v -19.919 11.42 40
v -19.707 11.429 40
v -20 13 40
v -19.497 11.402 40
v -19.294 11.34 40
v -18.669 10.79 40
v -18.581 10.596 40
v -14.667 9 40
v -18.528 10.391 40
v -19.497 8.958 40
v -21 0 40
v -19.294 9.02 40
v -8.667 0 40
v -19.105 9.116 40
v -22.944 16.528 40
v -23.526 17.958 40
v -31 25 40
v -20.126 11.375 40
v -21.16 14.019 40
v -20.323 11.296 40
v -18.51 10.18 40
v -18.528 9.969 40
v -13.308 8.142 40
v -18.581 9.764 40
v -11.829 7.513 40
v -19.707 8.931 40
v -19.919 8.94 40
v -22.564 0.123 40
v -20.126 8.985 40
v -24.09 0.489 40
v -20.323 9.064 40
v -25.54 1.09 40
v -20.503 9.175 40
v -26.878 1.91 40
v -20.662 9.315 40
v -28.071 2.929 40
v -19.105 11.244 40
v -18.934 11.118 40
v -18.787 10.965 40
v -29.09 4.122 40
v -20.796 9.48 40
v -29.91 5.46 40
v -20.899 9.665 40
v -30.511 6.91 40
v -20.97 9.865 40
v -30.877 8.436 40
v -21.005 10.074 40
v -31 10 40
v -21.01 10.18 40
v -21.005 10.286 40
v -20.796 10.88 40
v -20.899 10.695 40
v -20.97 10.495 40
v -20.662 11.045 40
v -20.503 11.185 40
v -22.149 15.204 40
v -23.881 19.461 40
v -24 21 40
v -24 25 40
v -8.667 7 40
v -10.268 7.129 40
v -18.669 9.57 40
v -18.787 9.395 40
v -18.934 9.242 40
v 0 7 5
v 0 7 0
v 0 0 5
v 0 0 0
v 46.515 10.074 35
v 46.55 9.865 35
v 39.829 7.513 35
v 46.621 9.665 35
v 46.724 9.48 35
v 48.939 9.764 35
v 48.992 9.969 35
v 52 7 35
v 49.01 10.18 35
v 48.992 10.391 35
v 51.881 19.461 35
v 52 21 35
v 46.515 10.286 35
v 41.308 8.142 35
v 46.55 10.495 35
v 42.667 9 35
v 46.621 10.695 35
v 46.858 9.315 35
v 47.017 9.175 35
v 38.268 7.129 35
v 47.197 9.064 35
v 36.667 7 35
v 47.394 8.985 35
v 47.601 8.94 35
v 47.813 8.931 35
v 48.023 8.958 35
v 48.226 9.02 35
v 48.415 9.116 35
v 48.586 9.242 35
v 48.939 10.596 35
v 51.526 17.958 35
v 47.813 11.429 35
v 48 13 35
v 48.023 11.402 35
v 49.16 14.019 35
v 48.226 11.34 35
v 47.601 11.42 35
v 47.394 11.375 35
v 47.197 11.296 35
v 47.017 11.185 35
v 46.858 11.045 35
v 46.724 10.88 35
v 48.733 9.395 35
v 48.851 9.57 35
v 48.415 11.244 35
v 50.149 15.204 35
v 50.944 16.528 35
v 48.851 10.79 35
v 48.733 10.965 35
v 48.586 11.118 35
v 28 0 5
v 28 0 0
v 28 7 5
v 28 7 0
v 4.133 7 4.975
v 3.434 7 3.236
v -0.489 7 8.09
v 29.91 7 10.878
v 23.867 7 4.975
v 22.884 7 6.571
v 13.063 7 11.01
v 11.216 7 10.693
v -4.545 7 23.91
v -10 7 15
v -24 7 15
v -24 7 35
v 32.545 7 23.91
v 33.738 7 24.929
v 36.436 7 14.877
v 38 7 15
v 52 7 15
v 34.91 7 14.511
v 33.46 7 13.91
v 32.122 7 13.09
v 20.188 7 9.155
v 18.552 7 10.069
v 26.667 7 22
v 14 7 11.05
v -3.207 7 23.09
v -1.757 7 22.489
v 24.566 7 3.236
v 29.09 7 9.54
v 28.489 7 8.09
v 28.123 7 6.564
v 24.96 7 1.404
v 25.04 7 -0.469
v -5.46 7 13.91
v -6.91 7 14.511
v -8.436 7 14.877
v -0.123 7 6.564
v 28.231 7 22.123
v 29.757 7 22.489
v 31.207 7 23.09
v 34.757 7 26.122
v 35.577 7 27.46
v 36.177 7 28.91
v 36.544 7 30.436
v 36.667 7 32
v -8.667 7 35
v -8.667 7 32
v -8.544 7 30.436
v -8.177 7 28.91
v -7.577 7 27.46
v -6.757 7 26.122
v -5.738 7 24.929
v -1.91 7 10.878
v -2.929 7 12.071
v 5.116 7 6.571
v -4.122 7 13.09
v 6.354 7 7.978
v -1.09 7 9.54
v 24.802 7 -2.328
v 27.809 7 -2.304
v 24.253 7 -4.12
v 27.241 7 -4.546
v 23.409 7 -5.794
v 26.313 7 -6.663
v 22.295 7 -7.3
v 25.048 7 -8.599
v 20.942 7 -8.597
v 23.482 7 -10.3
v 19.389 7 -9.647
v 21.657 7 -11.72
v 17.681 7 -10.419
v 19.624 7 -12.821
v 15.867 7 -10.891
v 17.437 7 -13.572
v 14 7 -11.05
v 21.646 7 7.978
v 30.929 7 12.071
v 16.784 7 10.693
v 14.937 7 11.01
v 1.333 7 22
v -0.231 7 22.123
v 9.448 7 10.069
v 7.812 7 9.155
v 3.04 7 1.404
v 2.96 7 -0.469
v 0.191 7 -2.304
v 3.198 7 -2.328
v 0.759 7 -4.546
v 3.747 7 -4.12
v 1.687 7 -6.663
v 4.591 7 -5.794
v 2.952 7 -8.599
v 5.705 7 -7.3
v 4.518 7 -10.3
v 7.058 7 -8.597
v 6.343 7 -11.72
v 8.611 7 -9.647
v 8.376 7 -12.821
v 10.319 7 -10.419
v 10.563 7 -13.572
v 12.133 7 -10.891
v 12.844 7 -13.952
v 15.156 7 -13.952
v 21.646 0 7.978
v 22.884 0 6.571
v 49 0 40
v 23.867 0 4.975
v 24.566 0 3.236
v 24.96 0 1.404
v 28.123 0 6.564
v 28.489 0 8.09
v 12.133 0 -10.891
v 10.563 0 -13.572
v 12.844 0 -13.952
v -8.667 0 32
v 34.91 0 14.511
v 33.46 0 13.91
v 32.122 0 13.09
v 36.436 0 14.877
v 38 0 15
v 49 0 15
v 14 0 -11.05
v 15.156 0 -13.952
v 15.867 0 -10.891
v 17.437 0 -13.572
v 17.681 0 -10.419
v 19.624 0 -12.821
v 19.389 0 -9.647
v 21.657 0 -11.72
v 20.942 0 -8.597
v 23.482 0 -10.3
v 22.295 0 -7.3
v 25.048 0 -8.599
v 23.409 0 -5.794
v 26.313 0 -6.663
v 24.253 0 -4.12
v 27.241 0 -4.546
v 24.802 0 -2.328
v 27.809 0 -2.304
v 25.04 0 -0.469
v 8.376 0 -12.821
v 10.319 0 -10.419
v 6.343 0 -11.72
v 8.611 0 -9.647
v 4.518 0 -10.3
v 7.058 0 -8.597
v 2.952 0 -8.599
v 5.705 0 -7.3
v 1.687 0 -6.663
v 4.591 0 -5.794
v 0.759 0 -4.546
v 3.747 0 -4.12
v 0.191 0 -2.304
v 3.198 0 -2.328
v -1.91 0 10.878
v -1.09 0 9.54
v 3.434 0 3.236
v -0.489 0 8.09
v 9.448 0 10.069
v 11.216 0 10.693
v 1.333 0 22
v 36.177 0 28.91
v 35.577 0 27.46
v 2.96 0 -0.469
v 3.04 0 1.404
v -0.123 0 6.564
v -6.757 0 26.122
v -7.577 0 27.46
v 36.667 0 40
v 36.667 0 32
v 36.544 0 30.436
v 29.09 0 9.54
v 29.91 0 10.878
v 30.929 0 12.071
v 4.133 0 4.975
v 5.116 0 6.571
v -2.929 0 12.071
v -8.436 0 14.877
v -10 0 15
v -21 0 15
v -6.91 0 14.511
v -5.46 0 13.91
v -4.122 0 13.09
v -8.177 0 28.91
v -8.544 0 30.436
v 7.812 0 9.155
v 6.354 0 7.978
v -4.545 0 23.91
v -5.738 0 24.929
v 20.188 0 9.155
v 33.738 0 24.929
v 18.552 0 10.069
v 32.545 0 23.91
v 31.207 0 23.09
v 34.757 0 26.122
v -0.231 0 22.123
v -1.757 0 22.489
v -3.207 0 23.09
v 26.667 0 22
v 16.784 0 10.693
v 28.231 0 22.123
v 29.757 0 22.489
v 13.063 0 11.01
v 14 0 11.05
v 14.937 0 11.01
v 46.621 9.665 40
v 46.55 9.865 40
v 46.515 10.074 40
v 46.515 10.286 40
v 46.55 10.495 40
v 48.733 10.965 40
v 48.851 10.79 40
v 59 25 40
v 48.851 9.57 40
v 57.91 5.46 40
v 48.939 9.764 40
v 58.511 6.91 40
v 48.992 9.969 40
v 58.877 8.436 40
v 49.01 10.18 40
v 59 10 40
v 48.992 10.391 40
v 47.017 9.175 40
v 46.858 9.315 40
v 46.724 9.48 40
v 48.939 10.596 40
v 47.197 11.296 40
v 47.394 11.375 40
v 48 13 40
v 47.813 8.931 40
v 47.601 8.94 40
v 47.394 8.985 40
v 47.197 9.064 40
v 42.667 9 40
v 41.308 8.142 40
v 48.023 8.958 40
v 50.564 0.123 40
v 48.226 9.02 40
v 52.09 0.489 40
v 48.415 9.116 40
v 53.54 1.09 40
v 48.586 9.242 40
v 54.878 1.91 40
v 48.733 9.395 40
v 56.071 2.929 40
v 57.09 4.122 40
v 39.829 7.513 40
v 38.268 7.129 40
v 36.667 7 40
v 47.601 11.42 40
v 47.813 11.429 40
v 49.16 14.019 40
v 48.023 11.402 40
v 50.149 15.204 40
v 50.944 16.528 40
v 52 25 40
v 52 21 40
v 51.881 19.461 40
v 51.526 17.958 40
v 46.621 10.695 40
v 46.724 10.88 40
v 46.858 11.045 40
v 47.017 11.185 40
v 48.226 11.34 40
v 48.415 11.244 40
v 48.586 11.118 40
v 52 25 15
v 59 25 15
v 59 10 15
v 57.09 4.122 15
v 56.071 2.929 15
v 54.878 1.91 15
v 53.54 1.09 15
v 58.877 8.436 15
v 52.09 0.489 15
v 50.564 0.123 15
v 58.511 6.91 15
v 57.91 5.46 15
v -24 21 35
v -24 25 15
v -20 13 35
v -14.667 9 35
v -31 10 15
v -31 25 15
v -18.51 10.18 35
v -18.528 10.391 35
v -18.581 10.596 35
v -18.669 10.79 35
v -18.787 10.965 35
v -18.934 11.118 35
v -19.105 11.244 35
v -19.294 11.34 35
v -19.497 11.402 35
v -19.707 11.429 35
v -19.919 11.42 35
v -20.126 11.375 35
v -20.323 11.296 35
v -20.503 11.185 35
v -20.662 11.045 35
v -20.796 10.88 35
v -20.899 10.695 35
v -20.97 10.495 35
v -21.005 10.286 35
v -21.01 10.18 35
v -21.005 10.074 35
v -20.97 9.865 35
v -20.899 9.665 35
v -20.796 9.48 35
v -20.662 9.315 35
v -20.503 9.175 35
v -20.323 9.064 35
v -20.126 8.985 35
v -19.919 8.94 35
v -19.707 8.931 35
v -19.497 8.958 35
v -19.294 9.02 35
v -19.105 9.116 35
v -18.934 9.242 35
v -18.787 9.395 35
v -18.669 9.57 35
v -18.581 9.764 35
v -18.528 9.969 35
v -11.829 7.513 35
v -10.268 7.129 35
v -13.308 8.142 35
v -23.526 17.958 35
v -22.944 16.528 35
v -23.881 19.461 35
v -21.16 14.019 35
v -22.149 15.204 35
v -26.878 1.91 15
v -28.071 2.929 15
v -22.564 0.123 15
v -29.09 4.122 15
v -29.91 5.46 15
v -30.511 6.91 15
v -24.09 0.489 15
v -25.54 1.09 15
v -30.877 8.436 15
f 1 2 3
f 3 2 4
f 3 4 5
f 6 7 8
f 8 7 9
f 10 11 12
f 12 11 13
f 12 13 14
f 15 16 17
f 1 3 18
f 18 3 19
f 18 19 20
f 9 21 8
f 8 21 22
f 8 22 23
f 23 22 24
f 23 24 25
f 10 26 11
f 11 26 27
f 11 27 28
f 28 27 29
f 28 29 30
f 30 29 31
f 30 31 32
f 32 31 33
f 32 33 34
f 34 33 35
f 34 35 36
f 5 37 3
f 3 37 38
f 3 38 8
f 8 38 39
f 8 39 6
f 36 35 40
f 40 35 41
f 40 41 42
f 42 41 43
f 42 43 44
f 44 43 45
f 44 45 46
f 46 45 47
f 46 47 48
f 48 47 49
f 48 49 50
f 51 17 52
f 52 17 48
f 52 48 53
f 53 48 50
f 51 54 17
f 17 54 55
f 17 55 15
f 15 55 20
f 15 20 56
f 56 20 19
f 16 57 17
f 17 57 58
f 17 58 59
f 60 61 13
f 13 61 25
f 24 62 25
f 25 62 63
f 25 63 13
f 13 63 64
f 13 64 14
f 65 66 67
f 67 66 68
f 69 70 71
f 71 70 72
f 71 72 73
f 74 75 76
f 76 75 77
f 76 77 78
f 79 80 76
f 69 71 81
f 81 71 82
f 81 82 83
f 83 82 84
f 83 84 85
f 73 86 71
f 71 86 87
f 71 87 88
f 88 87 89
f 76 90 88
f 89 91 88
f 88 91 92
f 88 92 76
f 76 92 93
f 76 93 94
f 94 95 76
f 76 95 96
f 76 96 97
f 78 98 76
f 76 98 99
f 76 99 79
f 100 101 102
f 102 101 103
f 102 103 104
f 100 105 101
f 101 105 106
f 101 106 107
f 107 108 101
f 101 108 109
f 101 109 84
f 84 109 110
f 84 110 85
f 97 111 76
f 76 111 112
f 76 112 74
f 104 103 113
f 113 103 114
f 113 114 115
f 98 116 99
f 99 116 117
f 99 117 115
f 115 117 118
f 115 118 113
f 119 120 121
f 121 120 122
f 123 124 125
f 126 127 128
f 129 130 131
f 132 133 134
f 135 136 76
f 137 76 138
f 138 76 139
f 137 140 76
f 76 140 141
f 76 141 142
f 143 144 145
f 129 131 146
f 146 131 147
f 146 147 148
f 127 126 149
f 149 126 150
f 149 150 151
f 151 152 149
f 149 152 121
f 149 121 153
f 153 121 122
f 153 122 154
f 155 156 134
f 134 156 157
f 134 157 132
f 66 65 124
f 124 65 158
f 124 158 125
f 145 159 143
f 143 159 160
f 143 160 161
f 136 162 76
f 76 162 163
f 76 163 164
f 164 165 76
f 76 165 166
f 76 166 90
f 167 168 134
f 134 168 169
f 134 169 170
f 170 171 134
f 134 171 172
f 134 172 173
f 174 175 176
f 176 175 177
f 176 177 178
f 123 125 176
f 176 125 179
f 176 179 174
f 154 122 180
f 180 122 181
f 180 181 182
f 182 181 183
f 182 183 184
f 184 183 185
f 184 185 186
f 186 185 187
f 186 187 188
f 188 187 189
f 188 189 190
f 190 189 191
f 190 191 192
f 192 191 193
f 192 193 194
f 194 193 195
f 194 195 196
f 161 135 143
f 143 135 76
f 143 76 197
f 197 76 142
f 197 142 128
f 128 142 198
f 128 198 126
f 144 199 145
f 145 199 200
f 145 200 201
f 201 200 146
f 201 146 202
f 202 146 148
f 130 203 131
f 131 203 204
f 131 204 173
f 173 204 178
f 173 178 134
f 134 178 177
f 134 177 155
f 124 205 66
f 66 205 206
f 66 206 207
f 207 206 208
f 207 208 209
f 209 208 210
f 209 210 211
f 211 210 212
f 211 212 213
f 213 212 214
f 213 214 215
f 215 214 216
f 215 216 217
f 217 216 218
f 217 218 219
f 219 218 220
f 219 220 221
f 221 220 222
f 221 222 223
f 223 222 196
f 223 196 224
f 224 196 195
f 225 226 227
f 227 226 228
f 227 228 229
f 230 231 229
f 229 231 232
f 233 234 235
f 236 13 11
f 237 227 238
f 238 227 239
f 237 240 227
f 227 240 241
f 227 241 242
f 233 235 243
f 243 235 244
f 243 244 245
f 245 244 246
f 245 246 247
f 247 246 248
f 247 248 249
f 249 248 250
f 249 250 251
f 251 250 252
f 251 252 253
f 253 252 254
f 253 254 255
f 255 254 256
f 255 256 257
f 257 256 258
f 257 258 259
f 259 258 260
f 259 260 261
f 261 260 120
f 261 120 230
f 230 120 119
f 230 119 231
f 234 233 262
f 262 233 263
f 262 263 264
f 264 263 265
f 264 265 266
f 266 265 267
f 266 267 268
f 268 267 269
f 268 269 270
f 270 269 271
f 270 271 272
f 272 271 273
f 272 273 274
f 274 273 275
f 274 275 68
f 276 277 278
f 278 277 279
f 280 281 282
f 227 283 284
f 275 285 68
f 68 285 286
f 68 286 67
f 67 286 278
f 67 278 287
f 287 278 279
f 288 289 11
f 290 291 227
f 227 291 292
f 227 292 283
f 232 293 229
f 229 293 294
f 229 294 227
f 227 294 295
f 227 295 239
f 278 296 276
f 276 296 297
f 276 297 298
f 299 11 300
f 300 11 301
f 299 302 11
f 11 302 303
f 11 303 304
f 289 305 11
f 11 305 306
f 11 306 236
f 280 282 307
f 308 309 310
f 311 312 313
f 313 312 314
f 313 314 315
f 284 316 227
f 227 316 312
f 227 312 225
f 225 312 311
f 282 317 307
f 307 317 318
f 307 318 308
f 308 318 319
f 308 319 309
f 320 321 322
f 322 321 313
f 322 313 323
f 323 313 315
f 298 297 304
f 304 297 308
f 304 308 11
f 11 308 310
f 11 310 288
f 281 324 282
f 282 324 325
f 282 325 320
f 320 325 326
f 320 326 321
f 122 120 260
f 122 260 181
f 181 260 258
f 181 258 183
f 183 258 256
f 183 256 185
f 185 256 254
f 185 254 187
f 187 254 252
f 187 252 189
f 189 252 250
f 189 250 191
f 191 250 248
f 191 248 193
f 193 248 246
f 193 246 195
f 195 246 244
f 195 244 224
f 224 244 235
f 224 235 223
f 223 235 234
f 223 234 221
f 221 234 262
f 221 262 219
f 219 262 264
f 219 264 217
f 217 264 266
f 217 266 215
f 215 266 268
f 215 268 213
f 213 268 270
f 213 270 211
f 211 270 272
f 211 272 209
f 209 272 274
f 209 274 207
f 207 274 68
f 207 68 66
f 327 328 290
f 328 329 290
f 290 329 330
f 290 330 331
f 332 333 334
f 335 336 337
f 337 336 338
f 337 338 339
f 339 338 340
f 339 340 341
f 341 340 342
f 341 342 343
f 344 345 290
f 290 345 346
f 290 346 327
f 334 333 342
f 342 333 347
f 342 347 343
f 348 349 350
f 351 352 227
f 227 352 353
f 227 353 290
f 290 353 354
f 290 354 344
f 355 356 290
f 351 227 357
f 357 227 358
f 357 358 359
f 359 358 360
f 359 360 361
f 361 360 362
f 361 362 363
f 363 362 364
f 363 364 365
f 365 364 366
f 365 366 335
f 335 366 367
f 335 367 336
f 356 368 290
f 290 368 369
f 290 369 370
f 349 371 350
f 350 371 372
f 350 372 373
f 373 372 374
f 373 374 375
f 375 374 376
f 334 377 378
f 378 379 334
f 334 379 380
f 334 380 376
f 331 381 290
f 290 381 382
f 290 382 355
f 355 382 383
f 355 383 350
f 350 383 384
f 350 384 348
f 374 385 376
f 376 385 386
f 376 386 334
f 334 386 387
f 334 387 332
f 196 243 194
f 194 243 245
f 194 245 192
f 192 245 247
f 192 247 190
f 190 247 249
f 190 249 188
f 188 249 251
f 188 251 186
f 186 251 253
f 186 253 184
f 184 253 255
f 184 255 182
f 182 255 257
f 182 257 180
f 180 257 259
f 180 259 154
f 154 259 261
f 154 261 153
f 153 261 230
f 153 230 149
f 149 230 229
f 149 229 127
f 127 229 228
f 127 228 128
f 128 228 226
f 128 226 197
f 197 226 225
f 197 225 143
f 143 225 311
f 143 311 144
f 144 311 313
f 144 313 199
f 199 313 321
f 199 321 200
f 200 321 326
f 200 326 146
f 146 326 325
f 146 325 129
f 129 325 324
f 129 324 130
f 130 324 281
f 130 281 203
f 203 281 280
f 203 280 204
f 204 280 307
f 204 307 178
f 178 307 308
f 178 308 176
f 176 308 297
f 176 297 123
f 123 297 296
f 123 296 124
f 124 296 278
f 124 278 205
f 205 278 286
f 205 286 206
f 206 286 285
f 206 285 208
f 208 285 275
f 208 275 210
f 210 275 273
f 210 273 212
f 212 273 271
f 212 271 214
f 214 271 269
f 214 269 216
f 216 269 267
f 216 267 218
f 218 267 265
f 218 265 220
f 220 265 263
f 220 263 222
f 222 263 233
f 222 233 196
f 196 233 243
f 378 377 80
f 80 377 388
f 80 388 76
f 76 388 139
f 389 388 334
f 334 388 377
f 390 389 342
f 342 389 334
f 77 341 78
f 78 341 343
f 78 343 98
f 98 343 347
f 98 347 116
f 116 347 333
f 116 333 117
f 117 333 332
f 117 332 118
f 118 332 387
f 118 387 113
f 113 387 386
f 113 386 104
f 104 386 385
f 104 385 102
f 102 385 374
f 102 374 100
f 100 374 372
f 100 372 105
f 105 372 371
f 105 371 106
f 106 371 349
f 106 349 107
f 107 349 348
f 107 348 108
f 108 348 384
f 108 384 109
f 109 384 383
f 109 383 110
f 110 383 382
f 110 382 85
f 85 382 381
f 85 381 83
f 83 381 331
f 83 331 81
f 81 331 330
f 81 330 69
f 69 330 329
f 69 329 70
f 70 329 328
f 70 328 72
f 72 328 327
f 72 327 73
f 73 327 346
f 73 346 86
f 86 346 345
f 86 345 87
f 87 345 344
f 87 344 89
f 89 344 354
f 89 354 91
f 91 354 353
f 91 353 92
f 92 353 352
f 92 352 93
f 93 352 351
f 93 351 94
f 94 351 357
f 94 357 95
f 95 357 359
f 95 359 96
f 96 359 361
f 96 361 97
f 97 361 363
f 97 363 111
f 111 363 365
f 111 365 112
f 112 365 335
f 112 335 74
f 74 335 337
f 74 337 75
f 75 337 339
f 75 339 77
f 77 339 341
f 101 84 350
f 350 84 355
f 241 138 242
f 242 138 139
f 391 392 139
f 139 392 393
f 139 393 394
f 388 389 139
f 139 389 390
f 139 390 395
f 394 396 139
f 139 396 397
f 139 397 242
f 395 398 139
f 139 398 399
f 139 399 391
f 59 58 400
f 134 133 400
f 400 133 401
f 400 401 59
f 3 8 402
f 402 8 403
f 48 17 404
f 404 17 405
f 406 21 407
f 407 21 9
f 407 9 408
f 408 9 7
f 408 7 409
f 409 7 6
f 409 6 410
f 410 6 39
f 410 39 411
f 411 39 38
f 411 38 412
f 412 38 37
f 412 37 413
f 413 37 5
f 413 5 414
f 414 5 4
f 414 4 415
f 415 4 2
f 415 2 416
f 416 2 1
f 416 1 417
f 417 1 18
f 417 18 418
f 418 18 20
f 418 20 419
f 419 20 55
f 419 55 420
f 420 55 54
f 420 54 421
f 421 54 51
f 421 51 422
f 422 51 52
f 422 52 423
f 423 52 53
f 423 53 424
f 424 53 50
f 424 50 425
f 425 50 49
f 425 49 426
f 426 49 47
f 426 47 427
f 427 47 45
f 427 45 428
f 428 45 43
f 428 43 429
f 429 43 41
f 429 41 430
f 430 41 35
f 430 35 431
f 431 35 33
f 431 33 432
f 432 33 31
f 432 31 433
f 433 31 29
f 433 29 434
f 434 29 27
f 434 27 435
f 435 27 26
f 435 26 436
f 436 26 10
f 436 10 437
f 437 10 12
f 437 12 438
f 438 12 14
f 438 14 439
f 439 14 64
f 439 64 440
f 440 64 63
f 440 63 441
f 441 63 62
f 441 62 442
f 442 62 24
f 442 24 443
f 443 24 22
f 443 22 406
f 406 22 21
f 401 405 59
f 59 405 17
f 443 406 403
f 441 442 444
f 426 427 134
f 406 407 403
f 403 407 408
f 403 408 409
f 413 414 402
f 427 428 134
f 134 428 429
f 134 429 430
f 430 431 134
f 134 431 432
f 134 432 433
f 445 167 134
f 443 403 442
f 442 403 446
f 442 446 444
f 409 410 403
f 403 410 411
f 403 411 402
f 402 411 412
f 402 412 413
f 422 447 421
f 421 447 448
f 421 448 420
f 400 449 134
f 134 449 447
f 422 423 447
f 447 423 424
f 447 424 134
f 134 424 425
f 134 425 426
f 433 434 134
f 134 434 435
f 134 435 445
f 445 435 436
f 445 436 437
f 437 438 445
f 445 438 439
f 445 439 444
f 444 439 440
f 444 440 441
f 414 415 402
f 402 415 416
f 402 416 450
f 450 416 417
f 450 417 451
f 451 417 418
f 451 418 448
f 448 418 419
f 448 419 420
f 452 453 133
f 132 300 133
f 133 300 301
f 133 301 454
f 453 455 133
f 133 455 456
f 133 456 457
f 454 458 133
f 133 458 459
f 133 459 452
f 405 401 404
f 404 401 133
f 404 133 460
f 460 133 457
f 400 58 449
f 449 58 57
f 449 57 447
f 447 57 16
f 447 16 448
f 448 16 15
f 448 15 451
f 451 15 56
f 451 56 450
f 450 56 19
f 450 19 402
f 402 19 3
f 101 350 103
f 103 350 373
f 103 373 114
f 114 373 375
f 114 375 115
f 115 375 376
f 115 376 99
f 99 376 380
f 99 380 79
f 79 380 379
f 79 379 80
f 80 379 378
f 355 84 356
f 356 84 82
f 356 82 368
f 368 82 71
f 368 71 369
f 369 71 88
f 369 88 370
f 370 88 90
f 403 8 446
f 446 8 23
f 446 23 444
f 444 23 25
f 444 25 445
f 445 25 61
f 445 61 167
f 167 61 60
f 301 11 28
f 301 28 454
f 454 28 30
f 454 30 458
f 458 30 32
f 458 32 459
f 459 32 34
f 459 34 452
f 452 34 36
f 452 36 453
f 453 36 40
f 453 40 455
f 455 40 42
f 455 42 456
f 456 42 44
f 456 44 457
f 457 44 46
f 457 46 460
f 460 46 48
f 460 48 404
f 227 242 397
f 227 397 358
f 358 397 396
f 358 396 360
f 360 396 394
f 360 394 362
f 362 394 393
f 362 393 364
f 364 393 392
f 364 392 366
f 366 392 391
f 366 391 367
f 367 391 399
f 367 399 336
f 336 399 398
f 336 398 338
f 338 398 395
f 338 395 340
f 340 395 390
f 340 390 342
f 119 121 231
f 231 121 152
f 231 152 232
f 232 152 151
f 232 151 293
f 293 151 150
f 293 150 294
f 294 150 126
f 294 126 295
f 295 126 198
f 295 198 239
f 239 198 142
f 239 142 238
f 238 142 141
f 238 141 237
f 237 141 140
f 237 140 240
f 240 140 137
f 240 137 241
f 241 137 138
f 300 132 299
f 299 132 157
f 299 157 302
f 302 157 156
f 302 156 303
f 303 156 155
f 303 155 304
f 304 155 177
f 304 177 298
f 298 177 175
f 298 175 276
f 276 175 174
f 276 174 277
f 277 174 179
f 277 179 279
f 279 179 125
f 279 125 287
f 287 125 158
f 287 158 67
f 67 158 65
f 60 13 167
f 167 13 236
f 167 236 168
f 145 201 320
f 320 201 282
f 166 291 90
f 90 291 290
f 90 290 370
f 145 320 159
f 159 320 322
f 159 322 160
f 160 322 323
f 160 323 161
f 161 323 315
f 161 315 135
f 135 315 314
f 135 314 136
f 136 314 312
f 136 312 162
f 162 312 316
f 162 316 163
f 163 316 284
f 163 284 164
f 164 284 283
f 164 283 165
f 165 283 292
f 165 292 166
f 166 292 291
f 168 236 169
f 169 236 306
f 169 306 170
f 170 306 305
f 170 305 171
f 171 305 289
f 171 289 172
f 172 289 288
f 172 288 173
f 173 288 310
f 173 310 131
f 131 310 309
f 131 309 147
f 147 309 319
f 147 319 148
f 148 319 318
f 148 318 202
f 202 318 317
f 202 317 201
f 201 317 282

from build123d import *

# Parameters (mm, degrees)
SKETCH1_R           = 11.05
BOSS_EXTRUDE1_DEPTH = 7
SKETCH2_R           = 1.25
BOSS_EXTRUDE2_DEPTH = 5
BOSS_EXTRUDE3_DEPTH = 20
FILLET1_R           = 10
SKETCH5_W           = 45.333333334
SKETCH5_H           = 18
CUT_EXTRUDE2_DEPTH  = 7
FILLET2_R           = 10


with BuildPart() as part:
    # Sketch1 → Boss-Extrude1 (new body)
    with BuildSketch(Plane(origin=(0, 0, 0), x_dir=(1, 0, 0), z_dir=(0, 1, 0))):
        with BuildLine():
            Line((0, 0), (0, -40))
            Line((0, -40), (28, -40))
            Line((28, -40), (28, 0))
            ThreePointArc((28, 0), (14, 14), (0, 0))
        make_face()
        with Locations(Location((14, 0, 0), (0, 0, 270))):
            Circle(SKETCH1_R, mode=Mode.SUBTRACT)
    extrude(amount=BOSS_EXTRUDE1_DEPTH)

    # Sketch2 → Boss-Extrude2 (add)
    with BuildSketch(Plane.XY.offset(40)):
        Polygon((52, 16), (52, 25), (59, 25), (59, 0), (28, 0), (28, 7), (40, 7), align=None)
        with Locations((47.76, 10.18)):
            Circle(SKETCH2_R, mode=Mode.SUBTRACT)
    boss_extrude2 = extrude(amount=-BOSS_EXTRUDE2_DEPTH)

    # Sketch3 → Boss-Extrude3 (add)
    with BuildSketch(Plane(origin=(0, 0, 35), x_dir=(-1, 0, 0), z_dir=(0, 0, -1))):
        Polygon((-52, 16), (-52, 7), (-40, 7), (-28, 7), (-28, 0), (-59, 0), (-59, 25), (-52, 25), align=None)
    boss_extrude3 = extrude(amount=BOSS_EXTRUDE3_DEPTH)

    # Mirror1: Boss-Extrude2, Boss-Extrude3 across plane
    add(boss_extrude2.mirror(Plane(origin=(14, 0, 0), x_dir=(0, 0, 1), z_dir=(1, 0, 0))))
    add(boss_extrude3.mirror(Plane(origin=(14, 0, 0), x_dir=(0, 0, 1), z_dir=(1, 0, 0))))

    # Fillet1
    fillet1_edges = [part.edges().sort_by_distance(p)[0] for p in [
        (52, 16, 37.5),
        (59, 0, 27.5),
        (40, 7, 37.5),
        (28, 3.5, 15),
        (-24, 16, 37.5),
        (-12, 7, 37.5),
        (-31, 0, 27.5),
        (0, 3.5, 15),
    ]]
    fillet(fillet1_edges, radius=FILLET1_R)

    # Sketch5 → Cut-Extrude2 (cut)
    with BuildSketch(Plane(origin=(0, 7, 0), x_dir=(1, 0, 0), z_dir=(0, 1, 0))):
        with Locations((14, -31)):
            Rectangle(SKETCH5_W, SKETCH5_H)
    extrude(amount=-CUT_EXTRUDE2_DEPTH, mode=Mode.SUBTRACT)

    # Fillet2
    fillet2_edges = [part.edges().sort_by_distance(p)[0] for p in [
        (-8.666666667, 3.5, 22),
        (36.666666667, 3.5, 22),
    ]]
    fillet(fillet2_edges, radius=FILLET2_R)


solid = part.part
